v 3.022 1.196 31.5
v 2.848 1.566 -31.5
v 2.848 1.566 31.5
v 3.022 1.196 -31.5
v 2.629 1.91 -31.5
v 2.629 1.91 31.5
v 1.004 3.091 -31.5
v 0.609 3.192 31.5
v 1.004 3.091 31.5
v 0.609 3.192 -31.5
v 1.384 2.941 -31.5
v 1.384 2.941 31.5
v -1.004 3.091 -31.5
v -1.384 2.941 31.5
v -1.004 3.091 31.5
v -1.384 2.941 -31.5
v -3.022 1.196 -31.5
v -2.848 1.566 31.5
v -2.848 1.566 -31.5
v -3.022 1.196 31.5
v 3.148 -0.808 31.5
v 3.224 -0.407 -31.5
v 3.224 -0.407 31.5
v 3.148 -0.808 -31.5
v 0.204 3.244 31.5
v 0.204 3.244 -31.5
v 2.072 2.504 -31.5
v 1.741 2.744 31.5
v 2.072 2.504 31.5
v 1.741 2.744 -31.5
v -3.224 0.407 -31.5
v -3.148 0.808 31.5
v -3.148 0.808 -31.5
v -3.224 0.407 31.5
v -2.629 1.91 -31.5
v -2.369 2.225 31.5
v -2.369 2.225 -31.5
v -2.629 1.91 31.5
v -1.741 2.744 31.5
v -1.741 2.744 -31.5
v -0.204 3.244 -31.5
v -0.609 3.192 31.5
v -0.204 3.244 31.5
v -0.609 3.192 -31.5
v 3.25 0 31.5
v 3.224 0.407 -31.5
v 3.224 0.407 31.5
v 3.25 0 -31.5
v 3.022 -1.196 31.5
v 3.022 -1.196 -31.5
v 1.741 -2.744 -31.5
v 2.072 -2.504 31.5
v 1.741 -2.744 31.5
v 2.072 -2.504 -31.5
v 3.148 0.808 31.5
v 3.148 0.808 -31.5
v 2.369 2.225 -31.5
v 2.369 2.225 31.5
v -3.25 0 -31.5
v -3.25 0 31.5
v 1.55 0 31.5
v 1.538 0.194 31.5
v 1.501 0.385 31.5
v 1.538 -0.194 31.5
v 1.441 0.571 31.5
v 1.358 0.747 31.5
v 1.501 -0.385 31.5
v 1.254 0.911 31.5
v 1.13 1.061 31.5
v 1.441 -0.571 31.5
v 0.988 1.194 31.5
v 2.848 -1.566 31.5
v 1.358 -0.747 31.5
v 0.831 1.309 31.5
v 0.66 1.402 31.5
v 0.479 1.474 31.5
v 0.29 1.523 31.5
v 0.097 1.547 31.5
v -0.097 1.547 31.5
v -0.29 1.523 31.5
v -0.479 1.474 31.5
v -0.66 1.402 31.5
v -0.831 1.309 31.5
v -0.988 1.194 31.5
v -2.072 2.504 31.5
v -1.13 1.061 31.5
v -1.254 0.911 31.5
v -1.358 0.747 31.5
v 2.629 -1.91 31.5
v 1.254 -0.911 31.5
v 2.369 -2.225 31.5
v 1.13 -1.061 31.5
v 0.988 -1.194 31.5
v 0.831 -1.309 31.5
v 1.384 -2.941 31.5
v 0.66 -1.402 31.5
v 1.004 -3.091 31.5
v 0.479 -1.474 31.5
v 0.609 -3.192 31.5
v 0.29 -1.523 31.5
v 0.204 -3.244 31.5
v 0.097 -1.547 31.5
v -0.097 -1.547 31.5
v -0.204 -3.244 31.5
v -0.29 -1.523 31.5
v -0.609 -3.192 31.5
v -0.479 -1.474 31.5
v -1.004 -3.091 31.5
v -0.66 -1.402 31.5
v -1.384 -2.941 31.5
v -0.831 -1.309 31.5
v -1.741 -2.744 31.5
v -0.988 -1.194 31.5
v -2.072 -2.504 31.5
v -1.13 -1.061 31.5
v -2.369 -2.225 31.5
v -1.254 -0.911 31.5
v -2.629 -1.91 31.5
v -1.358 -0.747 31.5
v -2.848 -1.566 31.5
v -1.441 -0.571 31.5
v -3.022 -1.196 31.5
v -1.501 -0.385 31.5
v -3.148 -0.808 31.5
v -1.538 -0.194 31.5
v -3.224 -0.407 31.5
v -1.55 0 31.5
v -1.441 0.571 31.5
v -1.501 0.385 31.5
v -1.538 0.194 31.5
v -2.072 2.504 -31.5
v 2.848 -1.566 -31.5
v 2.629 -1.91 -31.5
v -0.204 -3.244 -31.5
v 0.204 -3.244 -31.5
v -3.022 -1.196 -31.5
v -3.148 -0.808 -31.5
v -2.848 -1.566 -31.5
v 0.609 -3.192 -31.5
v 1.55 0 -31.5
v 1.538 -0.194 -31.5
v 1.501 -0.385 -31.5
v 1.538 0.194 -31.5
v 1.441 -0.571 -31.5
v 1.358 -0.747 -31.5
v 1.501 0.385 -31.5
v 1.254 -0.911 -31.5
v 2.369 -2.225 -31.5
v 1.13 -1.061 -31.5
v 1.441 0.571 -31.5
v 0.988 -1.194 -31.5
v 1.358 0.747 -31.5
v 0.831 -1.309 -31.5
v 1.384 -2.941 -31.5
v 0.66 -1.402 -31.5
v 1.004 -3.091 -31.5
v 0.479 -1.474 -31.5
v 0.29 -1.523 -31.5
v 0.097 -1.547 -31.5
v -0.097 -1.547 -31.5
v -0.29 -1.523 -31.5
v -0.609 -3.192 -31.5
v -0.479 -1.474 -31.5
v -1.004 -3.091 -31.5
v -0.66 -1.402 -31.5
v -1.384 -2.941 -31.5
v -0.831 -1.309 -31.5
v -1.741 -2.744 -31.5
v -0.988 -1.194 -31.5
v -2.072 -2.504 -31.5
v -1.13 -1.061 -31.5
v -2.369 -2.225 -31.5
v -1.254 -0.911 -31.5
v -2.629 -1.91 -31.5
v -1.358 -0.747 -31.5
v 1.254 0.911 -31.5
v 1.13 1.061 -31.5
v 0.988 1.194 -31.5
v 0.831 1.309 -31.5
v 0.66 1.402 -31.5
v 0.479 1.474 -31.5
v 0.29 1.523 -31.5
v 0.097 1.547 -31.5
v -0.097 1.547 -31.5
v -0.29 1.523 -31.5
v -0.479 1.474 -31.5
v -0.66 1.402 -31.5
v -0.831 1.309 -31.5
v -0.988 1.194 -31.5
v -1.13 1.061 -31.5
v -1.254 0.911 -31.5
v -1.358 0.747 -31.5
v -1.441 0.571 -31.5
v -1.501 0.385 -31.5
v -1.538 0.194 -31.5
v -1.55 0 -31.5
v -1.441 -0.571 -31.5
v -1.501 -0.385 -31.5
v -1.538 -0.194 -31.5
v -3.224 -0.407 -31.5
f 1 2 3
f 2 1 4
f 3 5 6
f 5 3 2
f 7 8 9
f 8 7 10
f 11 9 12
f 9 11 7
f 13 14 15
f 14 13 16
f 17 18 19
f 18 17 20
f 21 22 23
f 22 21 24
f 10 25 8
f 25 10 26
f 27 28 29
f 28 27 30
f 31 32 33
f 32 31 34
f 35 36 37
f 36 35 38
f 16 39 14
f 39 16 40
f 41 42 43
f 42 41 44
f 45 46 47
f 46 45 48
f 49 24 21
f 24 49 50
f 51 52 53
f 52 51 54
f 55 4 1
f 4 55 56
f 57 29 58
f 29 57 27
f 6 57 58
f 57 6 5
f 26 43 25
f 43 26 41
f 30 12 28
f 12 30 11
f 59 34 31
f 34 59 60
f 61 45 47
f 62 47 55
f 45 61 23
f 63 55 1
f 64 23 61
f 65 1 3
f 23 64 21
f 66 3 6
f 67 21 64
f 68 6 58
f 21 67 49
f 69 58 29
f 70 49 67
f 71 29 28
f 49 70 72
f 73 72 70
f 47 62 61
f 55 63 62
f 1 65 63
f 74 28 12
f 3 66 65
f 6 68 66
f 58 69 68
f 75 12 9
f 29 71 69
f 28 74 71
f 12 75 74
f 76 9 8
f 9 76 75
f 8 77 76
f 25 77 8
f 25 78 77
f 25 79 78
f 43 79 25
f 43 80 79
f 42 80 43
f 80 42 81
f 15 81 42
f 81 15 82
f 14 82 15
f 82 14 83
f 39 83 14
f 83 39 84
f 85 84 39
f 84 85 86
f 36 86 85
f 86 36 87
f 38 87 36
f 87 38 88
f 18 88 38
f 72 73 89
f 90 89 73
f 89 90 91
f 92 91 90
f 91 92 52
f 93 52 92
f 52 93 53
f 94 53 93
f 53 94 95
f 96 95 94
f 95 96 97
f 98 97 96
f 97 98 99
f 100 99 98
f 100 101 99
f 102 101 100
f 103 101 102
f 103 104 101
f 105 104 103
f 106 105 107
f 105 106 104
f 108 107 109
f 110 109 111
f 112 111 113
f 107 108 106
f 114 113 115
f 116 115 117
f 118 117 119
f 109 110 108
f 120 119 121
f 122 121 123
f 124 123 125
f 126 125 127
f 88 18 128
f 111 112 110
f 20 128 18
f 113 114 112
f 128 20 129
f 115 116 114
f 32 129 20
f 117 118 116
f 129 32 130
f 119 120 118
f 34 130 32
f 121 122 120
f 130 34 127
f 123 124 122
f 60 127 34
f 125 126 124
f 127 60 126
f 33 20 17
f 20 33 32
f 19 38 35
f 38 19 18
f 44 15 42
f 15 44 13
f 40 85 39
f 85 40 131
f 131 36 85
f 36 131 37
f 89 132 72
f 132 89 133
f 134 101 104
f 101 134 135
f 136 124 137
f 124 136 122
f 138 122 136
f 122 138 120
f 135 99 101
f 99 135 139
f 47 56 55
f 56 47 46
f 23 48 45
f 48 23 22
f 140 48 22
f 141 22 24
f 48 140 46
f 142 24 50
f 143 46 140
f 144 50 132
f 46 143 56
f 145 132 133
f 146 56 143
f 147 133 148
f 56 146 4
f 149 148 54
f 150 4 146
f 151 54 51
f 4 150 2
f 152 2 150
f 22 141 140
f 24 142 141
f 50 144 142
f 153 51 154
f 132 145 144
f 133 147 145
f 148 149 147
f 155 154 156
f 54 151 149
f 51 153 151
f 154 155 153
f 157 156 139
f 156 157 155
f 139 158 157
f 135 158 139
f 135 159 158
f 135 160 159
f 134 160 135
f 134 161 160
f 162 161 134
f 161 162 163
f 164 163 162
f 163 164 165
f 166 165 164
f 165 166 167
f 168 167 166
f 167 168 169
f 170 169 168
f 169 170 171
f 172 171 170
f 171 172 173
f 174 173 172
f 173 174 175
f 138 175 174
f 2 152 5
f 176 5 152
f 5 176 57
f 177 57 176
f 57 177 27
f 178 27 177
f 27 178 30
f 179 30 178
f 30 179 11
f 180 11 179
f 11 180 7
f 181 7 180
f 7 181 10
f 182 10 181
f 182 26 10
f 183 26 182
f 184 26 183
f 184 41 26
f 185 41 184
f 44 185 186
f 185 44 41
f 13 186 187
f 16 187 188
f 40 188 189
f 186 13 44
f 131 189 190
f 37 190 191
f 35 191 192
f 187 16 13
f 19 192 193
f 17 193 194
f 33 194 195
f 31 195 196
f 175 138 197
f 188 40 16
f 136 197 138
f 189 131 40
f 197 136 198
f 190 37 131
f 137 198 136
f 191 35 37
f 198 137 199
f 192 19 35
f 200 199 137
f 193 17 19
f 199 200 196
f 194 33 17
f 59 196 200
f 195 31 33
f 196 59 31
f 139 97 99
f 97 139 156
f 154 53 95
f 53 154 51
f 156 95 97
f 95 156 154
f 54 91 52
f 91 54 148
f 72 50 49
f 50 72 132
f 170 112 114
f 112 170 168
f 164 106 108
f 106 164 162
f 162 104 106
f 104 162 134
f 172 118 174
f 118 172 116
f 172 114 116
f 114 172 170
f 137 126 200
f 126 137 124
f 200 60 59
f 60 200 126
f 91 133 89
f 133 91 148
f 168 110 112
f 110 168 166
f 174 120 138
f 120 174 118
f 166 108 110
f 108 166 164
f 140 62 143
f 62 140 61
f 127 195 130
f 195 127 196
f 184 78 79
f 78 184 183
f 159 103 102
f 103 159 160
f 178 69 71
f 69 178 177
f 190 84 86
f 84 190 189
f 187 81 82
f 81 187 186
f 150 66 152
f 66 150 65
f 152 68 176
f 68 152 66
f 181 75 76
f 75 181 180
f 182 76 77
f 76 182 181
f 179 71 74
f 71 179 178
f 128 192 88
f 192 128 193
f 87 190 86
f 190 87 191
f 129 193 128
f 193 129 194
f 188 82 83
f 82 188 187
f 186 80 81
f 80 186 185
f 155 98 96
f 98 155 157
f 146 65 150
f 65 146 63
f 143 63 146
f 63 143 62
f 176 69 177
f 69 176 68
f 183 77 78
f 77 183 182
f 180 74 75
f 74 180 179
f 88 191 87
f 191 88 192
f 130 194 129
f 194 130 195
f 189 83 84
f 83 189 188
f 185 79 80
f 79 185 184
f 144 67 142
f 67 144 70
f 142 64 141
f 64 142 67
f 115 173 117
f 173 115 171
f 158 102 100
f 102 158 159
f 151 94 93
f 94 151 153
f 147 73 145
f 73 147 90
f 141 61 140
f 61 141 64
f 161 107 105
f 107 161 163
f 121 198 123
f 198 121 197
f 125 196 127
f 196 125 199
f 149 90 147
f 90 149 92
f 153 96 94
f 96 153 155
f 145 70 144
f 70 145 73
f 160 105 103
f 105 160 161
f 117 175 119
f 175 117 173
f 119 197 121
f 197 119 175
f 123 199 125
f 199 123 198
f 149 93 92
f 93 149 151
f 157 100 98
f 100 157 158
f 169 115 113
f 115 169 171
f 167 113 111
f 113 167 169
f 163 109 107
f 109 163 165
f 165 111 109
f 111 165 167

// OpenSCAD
$fn = 50;


difference() {
	union() {
		translate(v = [0, 0, -31.5000000000]) {
			cylinder(h = 63, r = 3.2500000000);
		}
	}
	union() {
		translate(v = [0, 0, -100.0000000000]) {
			cylinder(h = 200, r = 1.5500000000);
		}
	}
}
